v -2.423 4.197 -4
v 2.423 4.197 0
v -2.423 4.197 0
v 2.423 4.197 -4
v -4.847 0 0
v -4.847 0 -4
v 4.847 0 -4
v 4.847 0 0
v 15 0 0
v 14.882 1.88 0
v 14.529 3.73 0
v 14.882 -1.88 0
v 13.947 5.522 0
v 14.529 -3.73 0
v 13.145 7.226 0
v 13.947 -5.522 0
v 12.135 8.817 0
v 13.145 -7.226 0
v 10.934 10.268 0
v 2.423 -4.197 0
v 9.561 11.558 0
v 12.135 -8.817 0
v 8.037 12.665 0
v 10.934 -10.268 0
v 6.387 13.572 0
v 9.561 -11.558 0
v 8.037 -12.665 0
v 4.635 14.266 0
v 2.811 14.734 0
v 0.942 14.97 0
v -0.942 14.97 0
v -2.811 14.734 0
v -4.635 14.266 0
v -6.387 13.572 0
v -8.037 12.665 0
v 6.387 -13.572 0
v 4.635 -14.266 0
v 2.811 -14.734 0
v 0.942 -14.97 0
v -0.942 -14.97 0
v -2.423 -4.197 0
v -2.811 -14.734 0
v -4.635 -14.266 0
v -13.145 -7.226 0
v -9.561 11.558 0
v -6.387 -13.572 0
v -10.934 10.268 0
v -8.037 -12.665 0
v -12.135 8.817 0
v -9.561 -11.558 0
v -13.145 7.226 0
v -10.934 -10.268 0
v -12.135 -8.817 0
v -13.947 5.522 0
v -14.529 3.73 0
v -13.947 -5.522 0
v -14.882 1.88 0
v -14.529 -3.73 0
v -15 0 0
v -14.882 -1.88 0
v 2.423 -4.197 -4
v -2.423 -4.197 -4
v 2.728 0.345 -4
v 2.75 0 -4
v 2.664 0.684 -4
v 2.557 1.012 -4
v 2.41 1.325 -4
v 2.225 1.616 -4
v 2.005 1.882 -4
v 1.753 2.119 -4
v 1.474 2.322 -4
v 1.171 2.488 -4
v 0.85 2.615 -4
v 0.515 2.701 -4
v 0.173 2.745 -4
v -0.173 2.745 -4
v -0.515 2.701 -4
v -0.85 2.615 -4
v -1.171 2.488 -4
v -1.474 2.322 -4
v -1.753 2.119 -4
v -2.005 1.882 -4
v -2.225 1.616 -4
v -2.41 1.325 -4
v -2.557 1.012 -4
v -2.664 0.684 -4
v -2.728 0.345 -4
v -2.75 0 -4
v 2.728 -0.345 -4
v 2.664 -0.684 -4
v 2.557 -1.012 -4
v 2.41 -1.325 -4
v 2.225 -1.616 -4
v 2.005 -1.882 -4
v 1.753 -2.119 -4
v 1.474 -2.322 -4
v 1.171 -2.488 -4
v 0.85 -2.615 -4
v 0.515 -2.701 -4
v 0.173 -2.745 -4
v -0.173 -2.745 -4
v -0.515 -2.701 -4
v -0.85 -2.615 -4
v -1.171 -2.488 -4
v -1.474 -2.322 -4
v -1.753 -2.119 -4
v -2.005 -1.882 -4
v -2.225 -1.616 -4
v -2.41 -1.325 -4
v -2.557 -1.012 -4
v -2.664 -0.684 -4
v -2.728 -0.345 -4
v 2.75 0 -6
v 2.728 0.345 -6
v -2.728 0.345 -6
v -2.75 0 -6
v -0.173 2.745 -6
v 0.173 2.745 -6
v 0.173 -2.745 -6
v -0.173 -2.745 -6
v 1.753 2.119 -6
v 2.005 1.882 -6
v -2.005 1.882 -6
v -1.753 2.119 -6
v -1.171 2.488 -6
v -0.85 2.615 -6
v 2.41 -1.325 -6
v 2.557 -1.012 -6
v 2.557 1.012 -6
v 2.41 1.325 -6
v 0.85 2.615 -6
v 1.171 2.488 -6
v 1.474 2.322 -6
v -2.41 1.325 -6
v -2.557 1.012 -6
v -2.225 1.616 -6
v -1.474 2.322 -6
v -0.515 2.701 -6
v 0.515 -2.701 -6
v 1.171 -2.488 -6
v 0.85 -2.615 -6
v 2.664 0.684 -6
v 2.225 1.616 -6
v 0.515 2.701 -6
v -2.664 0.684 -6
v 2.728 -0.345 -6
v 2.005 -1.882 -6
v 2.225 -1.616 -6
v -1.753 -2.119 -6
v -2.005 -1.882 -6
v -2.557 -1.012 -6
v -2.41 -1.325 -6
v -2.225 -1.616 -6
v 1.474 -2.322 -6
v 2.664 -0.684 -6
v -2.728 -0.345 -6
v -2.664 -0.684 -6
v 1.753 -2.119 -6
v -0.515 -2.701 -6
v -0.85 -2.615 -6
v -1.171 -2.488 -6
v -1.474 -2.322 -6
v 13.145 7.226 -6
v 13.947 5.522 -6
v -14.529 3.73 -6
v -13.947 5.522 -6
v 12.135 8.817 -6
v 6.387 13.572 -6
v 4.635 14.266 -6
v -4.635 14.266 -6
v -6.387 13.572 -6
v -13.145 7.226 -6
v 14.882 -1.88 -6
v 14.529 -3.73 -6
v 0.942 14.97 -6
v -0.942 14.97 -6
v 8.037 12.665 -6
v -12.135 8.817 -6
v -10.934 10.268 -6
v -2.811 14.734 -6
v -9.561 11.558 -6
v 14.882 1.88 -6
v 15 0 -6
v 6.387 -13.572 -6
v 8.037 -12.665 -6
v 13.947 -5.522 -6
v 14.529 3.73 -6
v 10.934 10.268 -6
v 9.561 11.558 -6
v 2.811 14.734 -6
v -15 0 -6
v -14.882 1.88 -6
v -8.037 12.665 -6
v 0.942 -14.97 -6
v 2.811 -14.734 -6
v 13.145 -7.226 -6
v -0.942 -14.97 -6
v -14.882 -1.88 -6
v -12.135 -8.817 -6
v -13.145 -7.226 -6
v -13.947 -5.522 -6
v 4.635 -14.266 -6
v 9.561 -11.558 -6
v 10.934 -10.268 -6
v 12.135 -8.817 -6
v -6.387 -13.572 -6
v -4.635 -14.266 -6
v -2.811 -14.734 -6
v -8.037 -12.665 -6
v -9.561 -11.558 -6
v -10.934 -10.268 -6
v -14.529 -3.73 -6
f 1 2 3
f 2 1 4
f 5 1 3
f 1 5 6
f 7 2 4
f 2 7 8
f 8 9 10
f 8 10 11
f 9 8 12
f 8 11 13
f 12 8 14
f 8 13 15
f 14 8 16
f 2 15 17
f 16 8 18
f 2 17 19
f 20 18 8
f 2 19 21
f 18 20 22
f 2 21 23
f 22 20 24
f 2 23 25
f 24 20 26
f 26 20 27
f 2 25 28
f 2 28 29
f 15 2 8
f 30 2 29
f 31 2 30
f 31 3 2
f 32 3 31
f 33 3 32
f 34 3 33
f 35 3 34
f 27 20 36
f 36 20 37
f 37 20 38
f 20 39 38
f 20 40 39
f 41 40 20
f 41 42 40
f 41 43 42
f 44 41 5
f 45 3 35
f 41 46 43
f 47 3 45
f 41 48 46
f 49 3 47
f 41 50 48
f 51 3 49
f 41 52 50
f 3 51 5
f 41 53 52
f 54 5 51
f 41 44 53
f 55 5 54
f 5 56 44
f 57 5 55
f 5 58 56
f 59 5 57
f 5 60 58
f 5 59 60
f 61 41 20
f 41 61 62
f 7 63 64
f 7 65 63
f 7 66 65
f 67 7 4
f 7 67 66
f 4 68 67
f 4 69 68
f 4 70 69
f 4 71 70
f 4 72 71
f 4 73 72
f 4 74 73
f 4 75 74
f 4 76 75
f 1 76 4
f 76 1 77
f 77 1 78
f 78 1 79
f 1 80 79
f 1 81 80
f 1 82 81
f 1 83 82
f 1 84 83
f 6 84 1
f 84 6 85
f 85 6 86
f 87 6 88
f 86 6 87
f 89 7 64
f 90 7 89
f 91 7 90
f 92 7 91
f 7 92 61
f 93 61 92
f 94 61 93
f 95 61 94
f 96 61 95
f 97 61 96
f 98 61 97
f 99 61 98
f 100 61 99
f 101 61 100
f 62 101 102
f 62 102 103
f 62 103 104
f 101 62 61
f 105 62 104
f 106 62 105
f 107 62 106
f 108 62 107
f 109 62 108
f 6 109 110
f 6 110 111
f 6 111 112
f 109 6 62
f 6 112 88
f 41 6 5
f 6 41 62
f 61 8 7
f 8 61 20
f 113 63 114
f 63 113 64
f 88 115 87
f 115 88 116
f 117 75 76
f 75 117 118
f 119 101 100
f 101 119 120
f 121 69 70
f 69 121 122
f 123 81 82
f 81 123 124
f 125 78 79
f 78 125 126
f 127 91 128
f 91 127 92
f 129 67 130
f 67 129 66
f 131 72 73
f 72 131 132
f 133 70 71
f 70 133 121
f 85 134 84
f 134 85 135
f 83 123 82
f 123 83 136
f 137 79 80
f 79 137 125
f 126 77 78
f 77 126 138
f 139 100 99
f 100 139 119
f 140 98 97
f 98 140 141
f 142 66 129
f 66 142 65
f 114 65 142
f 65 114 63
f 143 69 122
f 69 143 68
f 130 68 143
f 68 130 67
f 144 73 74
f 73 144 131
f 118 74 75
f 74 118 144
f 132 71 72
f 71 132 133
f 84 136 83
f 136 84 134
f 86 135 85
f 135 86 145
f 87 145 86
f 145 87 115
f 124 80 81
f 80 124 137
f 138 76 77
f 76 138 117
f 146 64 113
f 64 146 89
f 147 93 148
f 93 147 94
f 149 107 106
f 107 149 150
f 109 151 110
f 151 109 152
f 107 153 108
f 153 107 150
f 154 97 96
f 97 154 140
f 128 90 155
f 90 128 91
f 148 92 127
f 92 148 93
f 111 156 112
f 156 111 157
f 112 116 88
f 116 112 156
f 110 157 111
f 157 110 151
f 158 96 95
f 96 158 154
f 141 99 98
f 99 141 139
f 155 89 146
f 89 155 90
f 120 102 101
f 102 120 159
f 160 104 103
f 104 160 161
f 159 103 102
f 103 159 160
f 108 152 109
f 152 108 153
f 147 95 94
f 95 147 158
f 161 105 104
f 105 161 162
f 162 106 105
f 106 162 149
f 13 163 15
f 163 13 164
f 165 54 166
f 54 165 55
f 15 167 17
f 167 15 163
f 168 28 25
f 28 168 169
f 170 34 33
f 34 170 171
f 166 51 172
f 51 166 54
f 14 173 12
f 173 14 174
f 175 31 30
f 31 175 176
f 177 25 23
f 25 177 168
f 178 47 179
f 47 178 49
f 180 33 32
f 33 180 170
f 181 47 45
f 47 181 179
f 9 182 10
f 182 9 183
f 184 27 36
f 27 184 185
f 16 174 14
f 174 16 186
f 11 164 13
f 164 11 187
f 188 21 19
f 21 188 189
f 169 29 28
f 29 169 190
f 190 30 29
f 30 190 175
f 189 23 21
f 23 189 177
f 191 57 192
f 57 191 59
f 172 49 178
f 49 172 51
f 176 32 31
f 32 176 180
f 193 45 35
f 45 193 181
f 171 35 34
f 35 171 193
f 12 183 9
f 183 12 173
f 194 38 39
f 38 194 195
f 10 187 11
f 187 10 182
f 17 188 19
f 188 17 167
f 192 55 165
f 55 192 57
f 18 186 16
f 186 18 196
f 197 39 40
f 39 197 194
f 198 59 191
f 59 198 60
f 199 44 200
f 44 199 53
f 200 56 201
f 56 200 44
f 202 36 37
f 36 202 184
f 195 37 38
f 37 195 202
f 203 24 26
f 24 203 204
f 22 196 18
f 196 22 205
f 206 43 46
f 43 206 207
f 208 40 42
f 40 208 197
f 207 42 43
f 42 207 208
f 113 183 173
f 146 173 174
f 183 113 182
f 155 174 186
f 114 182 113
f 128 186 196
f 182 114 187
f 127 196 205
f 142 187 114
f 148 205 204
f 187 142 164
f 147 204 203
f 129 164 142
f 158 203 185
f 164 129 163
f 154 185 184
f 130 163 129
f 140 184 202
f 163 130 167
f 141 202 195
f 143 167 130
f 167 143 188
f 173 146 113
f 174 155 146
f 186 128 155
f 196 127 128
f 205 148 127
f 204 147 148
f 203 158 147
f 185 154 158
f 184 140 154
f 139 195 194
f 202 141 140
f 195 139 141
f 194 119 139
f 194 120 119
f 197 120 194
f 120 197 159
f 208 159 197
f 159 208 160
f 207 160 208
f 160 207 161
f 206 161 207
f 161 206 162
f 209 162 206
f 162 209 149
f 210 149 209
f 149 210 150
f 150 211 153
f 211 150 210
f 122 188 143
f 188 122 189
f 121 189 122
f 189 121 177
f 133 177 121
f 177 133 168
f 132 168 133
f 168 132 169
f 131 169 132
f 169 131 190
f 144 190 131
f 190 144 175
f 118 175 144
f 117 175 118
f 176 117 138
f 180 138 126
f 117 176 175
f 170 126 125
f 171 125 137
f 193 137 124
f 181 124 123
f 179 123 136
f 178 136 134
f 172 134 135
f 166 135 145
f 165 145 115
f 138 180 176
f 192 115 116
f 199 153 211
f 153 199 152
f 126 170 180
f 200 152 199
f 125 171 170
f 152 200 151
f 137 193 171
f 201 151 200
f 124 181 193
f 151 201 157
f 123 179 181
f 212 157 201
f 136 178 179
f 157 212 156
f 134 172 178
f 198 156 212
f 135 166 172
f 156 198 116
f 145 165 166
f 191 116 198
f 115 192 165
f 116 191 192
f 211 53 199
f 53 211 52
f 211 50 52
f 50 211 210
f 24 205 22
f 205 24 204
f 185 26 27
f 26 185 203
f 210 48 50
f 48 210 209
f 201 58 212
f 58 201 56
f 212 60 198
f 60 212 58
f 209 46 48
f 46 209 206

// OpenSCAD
$fn = 50;


difference() {
	union() {
		translate(v = [0, 0, -6.0000000000]) {
			cylinder(h = 6.0000000000, r = 15.0000000000);
		}
	}
	union() {
		translate(v = [0, 0, 0]) {
			rotate(a = [0, 0, 0]) {
				difference() {
					union() {
						translate(v = [0, 0, -4]) {
							#linear_extrude(height = 4) {
								polygon(points = [[4.8468000000, 0.0000000000], [2.4234000000, 4.1974519271], [-2.4234000000, 4.1974519271], [-4.8468000000, 0.0000000000], [-2.4234000000, -4.1974519271], [2.4234000000, -4.1974519271]]);
							}
						}
					}
					union();
				}
			}
		}
		#translate(v = [0, 0, -100.0000000000]) {
			cylinder(h = 200, r = 2.7500000000);
		}
	}
}
